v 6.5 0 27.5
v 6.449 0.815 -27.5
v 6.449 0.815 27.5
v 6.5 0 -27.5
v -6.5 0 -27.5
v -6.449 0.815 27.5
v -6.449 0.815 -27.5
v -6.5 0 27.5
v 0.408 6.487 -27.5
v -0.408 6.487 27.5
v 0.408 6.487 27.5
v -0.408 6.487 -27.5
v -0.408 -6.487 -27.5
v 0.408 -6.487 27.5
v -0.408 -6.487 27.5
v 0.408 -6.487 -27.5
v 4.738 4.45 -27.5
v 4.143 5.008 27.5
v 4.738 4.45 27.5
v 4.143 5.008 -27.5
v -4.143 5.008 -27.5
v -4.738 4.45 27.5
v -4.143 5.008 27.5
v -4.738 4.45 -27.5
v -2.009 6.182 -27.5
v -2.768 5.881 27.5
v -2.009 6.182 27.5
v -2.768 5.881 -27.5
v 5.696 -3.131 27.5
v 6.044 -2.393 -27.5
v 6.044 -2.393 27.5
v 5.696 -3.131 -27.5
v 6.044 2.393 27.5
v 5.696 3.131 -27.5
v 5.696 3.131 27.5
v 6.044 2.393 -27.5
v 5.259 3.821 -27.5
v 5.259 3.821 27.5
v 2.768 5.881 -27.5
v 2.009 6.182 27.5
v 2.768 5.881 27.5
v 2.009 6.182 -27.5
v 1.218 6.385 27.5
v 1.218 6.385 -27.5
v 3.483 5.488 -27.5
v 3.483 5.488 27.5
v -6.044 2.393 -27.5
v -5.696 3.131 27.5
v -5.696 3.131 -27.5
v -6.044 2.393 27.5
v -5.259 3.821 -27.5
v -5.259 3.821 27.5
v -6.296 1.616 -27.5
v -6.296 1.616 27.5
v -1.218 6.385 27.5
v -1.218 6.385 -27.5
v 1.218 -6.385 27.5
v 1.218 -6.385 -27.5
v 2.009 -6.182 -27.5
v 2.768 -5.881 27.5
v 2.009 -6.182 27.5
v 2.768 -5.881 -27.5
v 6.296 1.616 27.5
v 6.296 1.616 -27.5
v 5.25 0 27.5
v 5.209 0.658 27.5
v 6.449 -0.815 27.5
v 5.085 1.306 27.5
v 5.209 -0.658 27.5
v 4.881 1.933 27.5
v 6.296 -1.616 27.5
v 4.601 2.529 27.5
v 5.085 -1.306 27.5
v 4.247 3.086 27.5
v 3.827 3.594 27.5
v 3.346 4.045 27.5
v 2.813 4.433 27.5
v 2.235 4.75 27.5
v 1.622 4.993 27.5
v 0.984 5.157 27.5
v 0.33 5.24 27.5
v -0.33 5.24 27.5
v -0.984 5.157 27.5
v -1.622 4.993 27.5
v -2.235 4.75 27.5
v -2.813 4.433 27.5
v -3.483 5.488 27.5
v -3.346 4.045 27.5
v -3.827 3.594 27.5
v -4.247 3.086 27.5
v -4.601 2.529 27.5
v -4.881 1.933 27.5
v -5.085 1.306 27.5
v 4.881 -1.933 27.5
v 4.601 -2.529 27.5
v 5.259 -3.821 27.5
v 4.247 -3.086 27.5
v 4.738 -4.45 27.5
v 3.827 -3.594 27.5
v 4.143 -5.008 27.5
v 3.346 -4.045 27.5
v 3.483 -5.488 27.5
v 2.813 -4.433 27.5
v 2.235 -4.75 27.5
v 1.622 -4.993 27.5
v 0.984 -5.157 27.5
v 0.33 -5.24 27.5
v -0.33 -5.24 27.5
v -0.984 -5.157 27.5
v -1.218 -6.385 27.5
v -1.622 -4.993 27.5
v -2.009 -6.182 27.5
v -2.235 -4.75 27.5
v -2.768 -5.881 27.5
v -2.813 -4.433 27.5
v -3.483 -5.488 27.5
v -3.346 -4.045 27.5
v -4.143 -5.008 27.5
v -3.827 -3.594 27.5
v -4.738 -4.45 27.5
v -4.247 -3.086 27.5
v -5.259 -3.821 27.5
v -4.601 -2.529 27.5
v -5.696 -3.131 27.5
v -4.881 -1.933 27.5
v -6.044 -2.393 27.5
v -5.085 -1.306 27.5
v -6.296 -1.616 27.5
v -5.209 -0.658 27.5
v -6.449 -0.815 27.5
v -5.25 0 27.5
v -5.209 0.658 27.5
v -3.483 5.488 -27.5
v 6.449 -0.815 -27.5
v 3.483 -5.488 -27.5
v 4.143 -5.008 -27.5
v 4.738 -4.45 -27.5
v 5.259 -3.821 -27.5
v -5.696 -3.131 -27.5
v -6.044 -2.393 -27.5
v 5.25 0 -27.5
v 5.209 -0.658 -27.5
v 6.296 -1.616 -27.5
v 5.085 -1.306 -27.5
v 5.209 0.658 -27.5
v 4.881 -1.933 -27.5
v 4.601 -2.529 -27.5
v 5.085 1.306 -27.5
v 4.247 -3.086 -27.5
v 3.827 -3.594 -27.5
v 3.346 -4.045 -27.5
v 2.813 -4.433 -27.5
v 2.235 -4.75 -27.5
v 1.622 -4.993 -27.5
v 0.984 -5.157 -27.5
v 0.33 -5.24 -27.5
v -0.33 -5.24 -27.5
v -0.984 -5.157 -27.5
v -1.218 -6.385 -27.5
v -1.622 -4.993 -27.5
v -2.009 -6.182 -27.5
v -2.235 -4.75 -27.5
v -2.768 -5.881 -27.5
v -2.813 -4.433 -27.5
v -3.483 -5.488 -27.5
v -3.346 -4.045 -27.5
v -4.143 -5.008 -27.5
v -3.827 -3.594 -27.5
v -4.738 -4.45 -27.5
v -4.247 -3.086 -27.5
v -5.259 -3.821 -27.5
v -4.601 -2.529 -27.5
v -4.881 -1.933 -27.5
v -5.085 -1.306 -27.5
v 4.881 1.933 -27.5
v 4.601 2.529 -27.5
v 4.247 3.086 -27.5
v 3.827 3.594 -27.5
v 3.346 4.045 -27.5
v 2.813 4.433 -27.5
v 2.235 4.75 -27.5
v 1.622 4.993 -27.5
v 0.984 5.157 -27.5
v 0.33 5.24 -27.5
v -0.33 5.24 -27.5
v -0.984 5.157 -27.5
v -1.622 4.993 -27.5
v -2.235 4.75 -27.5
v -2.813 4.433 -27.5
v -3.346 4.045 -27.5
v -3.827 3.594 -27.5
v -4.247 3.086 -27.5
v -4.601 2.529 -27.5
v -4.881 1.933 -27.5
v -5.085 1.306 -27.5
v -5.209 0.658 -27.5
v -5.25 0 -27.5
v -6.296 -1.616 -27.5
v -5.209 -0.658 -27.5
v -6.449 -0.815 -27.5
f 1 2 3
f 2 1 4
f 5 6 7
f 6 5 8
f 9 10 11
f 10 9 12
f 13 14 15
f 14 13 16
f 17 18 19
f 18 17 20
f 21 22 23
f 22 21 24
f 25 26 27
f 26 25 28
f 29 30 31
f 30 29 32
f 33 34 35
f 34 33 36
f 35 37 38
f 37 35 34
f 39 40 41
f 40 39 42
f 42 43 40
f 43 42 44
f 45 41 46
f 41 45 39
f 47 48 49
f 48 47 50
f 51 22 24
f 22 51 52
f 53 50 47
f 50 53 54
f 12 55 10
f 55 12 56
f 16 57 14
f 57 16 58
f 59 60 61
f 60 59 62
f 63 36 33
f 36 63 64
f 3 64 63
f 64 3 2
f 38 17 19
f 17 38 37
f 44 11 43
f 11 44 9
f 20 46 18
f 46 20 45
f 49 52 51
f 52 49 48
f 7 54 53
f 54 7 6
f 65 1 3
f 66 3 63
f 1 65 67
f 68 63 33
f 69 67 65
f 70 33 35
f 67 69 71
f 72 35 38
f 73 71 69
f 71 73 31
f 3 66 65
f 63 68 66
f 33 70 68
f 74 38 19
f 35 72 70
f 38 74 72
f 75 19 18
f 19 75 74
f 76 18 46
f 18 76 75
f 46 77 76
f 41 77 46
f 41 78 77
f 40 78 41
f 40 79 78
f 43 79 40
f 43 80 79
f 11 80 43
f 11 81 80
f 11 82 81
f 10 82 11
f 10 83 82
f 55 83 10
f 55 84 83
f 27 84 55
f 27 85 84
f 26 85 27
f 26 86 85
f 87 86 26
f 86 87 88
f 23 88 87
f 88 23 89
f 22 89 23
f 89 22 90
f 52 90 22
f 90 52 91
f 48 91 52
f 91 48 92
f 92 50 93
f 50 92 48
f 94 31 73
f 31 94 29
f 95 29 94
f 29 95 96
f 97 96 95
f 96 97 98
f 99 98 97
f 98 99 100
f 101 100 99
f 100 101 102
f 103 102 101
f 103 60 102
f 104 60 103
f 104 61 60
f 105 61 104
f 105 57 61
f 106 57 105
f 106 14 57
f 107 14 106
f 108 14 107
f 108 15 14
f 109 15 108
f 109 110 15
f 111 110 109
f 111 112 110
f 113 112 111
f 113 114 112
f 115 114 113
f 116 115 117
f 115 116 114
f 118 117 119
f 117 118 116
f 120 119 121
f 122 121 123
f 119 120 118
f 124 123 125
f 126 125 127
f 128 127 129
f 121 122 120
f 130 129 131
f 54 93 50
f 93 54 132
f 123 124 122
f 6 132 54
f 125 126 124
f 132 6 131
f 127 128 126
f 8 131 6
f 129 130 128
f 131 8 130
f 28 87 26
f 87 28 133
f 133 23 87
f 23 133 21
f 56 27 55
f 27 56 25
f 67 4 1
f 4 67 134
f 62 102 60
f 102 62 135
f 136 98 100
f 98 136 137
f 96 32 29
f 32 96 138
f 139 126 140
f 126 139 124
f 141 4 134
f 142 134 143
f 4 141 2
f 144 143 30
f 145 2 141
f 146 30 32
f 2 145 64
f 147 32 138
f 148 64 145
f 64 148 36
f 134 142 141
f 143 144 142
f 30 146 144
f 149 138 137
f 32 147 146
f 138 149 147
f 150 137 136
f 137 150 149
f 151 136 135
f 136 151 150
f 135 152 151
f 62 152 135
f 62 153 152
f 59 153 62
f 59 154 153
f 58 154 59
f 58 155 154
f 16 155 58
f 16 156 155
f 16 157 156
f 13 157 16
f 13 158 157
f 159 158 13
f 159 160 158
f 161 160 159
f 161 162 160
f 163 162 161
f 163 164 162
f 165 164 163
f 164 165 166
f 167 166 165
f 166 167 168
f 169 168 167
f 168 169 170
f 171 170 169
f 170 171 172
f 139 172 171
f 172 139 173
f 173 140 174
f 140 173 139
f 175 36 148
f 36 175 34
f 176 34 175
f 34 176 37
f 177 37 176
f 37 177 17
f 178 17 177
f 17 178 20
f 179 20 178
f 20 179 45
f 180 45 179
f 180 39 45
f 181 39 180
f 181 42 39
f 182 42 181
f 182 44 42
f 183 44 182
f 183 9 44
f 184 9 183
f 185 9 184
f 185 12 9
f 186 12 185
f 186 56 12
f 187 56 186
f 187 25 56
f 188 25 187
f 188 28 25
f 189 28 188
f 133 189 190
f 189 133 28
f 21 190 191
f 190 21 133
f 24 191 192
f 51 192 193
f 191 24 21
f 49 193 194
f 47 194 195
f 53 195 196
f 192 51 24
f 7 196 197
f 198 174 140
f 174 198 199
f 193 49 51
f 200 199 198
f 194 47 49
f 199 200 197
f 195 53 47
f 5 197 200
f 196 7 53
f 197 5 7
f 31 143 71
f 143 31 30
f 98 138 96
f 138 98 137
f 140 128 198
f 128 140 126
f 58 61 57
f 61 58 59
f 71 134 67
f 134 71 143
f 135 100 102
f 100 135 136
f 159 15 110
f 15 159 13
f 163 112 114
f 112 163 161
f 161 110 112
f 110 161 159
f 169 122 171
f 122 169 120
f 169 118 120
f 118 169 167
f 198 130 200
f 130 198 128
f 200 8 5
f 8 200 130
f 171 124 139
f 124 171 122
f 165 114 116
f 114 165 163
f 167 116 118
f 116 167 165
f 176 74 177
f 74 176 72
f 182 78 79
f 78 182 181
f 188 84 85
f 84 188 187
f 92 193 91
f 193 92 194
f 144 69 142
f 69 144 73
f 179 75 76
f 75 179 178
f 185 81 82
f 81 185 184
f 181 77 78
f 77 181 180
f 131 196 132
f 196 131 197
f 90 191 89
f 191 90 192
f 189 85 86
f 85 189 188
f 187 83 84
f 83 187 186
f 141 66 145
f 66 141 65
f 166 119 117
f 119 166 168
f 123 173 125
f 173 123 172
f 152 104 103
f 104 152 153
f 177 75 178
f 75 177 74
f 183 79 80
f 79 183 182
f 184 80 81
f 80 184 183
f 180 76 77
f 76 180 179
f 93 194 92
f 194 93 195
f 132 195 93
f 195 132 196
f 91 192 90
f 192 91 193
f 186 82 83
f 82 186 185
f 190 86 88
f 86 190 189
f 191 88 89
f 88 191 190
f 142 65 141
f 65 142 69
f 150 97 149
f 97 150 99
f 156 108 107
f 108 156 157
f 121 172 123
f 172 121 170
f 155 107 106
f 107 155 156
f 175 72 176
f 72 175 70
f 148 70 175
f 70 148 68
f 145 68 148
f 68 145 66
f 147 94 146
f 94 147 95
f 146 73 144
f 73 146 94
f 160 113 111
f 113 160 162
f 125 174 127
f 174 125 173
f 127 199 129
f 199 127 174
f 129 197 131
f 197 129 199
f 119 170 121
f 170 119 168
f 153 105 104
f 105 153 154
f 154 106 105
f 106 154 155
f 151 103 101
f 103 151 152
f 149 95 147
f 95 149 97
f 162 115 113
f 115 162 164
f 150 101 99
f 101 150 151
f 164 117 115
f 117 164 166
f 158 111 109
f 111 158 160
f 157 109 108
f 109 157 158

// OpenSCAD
$fn = 50;


difference() {
	union() {
		translate(v = [0, 0, -27.5000000000]) {
			cylinder(h = 55, r = 6.5000000000);
		}
	}
	union() {
		translate(v = [0, 0, -100.0000000000]) {
			cylinder(h = 200, r = 5.2500000000);
		}
	}
}
